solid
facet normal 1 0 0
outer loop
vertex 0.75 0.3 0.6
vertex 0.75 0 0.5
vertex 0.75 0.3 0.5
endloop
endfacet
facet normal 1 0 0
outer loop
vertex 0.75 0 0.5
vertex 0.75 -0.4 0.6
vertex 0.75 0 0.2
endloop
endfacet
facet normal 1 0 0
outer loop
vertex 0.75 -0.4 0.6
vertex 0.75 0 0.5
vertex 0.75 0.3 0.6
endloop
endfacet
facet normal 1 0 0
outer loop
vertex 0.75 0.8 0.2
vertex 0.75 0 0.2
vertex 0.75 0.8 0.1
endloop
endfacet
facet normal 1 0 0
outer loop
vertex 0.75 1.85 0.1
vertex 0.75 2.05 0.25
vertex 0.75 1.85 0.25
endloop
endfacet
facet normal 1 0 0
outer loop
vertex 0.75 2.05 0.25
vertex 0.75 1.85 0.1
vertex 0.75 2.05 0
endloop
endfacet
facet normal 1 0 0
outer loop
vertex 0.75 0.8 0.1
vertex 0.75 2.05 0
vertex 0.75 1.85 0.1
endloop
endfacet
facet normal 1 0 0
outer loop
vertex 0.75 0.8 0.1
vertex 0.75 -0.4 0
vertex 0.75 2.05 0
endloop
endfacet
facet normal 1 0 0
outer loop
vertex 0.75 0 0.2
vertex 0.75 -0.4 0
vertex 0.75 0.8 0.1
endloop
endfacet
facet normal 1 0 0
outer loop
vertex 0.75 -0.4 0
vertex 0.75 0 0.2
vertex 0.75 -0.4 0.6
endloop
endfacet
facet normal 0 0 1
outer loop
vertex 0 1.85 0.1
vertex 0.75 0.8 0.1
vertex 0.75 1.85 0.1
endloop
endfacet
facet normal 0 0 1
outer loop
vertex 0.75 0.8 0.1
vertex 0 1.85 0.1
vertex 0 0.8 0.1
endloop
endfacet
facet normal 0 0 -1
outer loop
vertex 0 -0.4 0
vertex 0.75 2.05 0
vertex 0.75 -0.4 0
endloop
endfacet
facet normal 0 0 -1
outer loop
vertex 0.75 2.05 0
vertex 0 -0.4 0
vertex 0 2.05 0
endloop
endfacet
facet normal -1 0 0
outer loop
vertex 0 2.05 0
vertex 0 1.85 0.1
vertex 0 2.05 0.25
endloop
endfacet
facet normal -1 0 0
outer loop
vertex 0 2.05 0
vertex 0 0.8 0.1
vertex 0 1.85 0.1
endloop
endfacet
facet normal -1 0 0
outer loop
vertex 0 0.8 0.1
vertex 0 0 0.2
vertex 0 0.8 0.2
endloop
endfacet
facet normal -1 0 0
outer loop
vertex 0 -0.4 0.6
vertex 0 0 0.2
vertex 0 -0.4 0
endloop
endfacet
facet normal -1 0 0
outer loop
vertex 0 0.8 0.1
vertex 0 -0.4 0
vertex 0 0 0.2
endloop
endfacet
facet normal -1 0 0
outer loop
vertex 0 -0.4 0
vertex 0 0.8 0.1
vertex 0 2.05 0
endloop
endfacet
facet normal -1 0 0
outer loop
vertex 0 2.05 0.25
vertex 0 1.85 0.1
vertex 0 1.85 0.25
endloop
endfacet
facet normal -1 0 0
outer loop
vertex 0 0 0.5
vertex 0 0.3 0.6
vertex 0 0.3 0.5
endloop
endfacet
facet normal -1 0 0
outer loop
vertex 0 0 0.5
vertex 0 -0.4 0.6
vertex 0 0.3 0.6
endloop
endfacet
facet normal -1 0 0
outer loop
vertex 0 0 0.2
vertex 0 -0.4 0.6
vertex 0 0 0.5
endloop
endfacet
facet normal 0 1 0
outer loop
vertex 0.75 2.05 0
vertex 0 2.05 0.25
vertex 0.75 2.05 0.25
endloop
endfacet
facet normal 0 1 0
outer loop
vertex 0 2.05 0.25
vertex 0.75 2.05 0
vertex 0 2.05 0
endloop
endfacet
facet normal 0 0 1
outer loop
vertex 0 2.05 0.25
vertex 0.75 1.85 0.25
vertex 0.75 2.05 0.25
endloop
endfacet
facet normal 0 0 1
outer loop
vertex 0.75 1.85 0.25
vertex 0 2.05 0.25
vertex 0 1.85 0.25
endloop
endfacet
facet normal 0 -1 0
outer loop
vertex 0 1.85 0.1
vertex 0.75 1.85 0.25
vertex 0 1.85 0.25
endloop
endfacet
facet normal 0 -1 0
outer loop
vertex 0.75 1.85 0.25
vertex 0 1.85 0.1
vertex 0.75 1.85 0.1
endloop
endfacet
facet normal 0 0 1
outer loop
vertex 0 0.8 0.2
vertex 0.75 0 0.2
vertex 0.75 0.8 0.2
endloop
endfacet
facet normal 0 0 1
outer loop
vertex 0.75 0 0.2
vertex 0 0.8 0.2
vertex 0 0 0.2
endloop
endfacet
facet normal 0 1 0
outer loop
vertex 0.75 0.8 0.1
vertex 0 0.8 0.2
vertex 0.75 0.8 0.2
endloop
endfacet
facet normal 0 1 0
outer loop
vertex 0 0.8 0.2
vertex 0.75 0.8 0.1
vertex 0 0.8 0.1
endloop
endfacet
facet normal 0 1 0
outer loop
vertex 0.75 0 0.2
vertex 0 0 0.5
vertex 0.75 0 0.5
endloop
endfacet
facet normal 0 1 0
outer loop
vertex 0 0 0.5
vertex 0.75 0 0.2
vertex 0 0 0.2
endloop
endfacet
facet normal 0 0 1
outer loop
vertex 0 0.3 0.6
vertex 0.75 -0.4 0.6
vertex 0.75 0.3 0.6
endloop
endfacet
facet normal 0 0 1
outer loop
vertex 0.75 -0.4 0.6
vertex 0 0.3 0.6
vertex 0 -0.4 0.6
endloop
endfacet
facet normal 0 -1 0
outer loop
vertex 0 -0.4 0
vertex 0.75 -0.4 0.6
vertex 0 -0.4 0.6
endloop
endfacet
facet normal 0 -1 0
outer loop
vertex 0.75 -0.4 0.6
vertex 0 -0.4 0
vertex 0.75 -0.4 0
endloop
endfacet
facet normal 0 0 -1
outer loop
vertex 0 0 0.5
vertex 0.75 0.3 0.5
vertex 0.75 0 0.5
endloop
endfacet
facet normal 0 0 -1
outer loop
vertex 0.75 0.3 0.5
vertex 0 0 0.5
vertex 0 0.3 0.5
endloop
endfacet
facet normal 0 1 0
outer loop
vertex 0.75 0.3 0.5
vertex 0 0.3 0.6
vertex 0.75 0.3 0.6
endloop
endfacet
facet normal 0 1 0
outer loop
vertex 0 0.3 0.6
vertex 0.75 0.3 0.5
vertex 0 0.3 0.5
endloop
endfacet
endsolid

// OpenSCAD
extra_length = 0.65;
cube([0.75, 1.0 + 0.4 + extra_length, 0.1]);
translate([0, 1.0 + 0.2 + extra_length, 0]) {
    cube([0.75, 0.2, 0.25]);
};
translate([0, 0, 0]) {
    cube([0.75, 0.8, 0.2]);
};
translate([0, -0.4, 0]) {
    cube([0.75, 0.4, 0.1 + 0.5]);
};
translate([0, -0.4, 0.5]) {
    cube([0.75, 0.7, 0.1]);
}
